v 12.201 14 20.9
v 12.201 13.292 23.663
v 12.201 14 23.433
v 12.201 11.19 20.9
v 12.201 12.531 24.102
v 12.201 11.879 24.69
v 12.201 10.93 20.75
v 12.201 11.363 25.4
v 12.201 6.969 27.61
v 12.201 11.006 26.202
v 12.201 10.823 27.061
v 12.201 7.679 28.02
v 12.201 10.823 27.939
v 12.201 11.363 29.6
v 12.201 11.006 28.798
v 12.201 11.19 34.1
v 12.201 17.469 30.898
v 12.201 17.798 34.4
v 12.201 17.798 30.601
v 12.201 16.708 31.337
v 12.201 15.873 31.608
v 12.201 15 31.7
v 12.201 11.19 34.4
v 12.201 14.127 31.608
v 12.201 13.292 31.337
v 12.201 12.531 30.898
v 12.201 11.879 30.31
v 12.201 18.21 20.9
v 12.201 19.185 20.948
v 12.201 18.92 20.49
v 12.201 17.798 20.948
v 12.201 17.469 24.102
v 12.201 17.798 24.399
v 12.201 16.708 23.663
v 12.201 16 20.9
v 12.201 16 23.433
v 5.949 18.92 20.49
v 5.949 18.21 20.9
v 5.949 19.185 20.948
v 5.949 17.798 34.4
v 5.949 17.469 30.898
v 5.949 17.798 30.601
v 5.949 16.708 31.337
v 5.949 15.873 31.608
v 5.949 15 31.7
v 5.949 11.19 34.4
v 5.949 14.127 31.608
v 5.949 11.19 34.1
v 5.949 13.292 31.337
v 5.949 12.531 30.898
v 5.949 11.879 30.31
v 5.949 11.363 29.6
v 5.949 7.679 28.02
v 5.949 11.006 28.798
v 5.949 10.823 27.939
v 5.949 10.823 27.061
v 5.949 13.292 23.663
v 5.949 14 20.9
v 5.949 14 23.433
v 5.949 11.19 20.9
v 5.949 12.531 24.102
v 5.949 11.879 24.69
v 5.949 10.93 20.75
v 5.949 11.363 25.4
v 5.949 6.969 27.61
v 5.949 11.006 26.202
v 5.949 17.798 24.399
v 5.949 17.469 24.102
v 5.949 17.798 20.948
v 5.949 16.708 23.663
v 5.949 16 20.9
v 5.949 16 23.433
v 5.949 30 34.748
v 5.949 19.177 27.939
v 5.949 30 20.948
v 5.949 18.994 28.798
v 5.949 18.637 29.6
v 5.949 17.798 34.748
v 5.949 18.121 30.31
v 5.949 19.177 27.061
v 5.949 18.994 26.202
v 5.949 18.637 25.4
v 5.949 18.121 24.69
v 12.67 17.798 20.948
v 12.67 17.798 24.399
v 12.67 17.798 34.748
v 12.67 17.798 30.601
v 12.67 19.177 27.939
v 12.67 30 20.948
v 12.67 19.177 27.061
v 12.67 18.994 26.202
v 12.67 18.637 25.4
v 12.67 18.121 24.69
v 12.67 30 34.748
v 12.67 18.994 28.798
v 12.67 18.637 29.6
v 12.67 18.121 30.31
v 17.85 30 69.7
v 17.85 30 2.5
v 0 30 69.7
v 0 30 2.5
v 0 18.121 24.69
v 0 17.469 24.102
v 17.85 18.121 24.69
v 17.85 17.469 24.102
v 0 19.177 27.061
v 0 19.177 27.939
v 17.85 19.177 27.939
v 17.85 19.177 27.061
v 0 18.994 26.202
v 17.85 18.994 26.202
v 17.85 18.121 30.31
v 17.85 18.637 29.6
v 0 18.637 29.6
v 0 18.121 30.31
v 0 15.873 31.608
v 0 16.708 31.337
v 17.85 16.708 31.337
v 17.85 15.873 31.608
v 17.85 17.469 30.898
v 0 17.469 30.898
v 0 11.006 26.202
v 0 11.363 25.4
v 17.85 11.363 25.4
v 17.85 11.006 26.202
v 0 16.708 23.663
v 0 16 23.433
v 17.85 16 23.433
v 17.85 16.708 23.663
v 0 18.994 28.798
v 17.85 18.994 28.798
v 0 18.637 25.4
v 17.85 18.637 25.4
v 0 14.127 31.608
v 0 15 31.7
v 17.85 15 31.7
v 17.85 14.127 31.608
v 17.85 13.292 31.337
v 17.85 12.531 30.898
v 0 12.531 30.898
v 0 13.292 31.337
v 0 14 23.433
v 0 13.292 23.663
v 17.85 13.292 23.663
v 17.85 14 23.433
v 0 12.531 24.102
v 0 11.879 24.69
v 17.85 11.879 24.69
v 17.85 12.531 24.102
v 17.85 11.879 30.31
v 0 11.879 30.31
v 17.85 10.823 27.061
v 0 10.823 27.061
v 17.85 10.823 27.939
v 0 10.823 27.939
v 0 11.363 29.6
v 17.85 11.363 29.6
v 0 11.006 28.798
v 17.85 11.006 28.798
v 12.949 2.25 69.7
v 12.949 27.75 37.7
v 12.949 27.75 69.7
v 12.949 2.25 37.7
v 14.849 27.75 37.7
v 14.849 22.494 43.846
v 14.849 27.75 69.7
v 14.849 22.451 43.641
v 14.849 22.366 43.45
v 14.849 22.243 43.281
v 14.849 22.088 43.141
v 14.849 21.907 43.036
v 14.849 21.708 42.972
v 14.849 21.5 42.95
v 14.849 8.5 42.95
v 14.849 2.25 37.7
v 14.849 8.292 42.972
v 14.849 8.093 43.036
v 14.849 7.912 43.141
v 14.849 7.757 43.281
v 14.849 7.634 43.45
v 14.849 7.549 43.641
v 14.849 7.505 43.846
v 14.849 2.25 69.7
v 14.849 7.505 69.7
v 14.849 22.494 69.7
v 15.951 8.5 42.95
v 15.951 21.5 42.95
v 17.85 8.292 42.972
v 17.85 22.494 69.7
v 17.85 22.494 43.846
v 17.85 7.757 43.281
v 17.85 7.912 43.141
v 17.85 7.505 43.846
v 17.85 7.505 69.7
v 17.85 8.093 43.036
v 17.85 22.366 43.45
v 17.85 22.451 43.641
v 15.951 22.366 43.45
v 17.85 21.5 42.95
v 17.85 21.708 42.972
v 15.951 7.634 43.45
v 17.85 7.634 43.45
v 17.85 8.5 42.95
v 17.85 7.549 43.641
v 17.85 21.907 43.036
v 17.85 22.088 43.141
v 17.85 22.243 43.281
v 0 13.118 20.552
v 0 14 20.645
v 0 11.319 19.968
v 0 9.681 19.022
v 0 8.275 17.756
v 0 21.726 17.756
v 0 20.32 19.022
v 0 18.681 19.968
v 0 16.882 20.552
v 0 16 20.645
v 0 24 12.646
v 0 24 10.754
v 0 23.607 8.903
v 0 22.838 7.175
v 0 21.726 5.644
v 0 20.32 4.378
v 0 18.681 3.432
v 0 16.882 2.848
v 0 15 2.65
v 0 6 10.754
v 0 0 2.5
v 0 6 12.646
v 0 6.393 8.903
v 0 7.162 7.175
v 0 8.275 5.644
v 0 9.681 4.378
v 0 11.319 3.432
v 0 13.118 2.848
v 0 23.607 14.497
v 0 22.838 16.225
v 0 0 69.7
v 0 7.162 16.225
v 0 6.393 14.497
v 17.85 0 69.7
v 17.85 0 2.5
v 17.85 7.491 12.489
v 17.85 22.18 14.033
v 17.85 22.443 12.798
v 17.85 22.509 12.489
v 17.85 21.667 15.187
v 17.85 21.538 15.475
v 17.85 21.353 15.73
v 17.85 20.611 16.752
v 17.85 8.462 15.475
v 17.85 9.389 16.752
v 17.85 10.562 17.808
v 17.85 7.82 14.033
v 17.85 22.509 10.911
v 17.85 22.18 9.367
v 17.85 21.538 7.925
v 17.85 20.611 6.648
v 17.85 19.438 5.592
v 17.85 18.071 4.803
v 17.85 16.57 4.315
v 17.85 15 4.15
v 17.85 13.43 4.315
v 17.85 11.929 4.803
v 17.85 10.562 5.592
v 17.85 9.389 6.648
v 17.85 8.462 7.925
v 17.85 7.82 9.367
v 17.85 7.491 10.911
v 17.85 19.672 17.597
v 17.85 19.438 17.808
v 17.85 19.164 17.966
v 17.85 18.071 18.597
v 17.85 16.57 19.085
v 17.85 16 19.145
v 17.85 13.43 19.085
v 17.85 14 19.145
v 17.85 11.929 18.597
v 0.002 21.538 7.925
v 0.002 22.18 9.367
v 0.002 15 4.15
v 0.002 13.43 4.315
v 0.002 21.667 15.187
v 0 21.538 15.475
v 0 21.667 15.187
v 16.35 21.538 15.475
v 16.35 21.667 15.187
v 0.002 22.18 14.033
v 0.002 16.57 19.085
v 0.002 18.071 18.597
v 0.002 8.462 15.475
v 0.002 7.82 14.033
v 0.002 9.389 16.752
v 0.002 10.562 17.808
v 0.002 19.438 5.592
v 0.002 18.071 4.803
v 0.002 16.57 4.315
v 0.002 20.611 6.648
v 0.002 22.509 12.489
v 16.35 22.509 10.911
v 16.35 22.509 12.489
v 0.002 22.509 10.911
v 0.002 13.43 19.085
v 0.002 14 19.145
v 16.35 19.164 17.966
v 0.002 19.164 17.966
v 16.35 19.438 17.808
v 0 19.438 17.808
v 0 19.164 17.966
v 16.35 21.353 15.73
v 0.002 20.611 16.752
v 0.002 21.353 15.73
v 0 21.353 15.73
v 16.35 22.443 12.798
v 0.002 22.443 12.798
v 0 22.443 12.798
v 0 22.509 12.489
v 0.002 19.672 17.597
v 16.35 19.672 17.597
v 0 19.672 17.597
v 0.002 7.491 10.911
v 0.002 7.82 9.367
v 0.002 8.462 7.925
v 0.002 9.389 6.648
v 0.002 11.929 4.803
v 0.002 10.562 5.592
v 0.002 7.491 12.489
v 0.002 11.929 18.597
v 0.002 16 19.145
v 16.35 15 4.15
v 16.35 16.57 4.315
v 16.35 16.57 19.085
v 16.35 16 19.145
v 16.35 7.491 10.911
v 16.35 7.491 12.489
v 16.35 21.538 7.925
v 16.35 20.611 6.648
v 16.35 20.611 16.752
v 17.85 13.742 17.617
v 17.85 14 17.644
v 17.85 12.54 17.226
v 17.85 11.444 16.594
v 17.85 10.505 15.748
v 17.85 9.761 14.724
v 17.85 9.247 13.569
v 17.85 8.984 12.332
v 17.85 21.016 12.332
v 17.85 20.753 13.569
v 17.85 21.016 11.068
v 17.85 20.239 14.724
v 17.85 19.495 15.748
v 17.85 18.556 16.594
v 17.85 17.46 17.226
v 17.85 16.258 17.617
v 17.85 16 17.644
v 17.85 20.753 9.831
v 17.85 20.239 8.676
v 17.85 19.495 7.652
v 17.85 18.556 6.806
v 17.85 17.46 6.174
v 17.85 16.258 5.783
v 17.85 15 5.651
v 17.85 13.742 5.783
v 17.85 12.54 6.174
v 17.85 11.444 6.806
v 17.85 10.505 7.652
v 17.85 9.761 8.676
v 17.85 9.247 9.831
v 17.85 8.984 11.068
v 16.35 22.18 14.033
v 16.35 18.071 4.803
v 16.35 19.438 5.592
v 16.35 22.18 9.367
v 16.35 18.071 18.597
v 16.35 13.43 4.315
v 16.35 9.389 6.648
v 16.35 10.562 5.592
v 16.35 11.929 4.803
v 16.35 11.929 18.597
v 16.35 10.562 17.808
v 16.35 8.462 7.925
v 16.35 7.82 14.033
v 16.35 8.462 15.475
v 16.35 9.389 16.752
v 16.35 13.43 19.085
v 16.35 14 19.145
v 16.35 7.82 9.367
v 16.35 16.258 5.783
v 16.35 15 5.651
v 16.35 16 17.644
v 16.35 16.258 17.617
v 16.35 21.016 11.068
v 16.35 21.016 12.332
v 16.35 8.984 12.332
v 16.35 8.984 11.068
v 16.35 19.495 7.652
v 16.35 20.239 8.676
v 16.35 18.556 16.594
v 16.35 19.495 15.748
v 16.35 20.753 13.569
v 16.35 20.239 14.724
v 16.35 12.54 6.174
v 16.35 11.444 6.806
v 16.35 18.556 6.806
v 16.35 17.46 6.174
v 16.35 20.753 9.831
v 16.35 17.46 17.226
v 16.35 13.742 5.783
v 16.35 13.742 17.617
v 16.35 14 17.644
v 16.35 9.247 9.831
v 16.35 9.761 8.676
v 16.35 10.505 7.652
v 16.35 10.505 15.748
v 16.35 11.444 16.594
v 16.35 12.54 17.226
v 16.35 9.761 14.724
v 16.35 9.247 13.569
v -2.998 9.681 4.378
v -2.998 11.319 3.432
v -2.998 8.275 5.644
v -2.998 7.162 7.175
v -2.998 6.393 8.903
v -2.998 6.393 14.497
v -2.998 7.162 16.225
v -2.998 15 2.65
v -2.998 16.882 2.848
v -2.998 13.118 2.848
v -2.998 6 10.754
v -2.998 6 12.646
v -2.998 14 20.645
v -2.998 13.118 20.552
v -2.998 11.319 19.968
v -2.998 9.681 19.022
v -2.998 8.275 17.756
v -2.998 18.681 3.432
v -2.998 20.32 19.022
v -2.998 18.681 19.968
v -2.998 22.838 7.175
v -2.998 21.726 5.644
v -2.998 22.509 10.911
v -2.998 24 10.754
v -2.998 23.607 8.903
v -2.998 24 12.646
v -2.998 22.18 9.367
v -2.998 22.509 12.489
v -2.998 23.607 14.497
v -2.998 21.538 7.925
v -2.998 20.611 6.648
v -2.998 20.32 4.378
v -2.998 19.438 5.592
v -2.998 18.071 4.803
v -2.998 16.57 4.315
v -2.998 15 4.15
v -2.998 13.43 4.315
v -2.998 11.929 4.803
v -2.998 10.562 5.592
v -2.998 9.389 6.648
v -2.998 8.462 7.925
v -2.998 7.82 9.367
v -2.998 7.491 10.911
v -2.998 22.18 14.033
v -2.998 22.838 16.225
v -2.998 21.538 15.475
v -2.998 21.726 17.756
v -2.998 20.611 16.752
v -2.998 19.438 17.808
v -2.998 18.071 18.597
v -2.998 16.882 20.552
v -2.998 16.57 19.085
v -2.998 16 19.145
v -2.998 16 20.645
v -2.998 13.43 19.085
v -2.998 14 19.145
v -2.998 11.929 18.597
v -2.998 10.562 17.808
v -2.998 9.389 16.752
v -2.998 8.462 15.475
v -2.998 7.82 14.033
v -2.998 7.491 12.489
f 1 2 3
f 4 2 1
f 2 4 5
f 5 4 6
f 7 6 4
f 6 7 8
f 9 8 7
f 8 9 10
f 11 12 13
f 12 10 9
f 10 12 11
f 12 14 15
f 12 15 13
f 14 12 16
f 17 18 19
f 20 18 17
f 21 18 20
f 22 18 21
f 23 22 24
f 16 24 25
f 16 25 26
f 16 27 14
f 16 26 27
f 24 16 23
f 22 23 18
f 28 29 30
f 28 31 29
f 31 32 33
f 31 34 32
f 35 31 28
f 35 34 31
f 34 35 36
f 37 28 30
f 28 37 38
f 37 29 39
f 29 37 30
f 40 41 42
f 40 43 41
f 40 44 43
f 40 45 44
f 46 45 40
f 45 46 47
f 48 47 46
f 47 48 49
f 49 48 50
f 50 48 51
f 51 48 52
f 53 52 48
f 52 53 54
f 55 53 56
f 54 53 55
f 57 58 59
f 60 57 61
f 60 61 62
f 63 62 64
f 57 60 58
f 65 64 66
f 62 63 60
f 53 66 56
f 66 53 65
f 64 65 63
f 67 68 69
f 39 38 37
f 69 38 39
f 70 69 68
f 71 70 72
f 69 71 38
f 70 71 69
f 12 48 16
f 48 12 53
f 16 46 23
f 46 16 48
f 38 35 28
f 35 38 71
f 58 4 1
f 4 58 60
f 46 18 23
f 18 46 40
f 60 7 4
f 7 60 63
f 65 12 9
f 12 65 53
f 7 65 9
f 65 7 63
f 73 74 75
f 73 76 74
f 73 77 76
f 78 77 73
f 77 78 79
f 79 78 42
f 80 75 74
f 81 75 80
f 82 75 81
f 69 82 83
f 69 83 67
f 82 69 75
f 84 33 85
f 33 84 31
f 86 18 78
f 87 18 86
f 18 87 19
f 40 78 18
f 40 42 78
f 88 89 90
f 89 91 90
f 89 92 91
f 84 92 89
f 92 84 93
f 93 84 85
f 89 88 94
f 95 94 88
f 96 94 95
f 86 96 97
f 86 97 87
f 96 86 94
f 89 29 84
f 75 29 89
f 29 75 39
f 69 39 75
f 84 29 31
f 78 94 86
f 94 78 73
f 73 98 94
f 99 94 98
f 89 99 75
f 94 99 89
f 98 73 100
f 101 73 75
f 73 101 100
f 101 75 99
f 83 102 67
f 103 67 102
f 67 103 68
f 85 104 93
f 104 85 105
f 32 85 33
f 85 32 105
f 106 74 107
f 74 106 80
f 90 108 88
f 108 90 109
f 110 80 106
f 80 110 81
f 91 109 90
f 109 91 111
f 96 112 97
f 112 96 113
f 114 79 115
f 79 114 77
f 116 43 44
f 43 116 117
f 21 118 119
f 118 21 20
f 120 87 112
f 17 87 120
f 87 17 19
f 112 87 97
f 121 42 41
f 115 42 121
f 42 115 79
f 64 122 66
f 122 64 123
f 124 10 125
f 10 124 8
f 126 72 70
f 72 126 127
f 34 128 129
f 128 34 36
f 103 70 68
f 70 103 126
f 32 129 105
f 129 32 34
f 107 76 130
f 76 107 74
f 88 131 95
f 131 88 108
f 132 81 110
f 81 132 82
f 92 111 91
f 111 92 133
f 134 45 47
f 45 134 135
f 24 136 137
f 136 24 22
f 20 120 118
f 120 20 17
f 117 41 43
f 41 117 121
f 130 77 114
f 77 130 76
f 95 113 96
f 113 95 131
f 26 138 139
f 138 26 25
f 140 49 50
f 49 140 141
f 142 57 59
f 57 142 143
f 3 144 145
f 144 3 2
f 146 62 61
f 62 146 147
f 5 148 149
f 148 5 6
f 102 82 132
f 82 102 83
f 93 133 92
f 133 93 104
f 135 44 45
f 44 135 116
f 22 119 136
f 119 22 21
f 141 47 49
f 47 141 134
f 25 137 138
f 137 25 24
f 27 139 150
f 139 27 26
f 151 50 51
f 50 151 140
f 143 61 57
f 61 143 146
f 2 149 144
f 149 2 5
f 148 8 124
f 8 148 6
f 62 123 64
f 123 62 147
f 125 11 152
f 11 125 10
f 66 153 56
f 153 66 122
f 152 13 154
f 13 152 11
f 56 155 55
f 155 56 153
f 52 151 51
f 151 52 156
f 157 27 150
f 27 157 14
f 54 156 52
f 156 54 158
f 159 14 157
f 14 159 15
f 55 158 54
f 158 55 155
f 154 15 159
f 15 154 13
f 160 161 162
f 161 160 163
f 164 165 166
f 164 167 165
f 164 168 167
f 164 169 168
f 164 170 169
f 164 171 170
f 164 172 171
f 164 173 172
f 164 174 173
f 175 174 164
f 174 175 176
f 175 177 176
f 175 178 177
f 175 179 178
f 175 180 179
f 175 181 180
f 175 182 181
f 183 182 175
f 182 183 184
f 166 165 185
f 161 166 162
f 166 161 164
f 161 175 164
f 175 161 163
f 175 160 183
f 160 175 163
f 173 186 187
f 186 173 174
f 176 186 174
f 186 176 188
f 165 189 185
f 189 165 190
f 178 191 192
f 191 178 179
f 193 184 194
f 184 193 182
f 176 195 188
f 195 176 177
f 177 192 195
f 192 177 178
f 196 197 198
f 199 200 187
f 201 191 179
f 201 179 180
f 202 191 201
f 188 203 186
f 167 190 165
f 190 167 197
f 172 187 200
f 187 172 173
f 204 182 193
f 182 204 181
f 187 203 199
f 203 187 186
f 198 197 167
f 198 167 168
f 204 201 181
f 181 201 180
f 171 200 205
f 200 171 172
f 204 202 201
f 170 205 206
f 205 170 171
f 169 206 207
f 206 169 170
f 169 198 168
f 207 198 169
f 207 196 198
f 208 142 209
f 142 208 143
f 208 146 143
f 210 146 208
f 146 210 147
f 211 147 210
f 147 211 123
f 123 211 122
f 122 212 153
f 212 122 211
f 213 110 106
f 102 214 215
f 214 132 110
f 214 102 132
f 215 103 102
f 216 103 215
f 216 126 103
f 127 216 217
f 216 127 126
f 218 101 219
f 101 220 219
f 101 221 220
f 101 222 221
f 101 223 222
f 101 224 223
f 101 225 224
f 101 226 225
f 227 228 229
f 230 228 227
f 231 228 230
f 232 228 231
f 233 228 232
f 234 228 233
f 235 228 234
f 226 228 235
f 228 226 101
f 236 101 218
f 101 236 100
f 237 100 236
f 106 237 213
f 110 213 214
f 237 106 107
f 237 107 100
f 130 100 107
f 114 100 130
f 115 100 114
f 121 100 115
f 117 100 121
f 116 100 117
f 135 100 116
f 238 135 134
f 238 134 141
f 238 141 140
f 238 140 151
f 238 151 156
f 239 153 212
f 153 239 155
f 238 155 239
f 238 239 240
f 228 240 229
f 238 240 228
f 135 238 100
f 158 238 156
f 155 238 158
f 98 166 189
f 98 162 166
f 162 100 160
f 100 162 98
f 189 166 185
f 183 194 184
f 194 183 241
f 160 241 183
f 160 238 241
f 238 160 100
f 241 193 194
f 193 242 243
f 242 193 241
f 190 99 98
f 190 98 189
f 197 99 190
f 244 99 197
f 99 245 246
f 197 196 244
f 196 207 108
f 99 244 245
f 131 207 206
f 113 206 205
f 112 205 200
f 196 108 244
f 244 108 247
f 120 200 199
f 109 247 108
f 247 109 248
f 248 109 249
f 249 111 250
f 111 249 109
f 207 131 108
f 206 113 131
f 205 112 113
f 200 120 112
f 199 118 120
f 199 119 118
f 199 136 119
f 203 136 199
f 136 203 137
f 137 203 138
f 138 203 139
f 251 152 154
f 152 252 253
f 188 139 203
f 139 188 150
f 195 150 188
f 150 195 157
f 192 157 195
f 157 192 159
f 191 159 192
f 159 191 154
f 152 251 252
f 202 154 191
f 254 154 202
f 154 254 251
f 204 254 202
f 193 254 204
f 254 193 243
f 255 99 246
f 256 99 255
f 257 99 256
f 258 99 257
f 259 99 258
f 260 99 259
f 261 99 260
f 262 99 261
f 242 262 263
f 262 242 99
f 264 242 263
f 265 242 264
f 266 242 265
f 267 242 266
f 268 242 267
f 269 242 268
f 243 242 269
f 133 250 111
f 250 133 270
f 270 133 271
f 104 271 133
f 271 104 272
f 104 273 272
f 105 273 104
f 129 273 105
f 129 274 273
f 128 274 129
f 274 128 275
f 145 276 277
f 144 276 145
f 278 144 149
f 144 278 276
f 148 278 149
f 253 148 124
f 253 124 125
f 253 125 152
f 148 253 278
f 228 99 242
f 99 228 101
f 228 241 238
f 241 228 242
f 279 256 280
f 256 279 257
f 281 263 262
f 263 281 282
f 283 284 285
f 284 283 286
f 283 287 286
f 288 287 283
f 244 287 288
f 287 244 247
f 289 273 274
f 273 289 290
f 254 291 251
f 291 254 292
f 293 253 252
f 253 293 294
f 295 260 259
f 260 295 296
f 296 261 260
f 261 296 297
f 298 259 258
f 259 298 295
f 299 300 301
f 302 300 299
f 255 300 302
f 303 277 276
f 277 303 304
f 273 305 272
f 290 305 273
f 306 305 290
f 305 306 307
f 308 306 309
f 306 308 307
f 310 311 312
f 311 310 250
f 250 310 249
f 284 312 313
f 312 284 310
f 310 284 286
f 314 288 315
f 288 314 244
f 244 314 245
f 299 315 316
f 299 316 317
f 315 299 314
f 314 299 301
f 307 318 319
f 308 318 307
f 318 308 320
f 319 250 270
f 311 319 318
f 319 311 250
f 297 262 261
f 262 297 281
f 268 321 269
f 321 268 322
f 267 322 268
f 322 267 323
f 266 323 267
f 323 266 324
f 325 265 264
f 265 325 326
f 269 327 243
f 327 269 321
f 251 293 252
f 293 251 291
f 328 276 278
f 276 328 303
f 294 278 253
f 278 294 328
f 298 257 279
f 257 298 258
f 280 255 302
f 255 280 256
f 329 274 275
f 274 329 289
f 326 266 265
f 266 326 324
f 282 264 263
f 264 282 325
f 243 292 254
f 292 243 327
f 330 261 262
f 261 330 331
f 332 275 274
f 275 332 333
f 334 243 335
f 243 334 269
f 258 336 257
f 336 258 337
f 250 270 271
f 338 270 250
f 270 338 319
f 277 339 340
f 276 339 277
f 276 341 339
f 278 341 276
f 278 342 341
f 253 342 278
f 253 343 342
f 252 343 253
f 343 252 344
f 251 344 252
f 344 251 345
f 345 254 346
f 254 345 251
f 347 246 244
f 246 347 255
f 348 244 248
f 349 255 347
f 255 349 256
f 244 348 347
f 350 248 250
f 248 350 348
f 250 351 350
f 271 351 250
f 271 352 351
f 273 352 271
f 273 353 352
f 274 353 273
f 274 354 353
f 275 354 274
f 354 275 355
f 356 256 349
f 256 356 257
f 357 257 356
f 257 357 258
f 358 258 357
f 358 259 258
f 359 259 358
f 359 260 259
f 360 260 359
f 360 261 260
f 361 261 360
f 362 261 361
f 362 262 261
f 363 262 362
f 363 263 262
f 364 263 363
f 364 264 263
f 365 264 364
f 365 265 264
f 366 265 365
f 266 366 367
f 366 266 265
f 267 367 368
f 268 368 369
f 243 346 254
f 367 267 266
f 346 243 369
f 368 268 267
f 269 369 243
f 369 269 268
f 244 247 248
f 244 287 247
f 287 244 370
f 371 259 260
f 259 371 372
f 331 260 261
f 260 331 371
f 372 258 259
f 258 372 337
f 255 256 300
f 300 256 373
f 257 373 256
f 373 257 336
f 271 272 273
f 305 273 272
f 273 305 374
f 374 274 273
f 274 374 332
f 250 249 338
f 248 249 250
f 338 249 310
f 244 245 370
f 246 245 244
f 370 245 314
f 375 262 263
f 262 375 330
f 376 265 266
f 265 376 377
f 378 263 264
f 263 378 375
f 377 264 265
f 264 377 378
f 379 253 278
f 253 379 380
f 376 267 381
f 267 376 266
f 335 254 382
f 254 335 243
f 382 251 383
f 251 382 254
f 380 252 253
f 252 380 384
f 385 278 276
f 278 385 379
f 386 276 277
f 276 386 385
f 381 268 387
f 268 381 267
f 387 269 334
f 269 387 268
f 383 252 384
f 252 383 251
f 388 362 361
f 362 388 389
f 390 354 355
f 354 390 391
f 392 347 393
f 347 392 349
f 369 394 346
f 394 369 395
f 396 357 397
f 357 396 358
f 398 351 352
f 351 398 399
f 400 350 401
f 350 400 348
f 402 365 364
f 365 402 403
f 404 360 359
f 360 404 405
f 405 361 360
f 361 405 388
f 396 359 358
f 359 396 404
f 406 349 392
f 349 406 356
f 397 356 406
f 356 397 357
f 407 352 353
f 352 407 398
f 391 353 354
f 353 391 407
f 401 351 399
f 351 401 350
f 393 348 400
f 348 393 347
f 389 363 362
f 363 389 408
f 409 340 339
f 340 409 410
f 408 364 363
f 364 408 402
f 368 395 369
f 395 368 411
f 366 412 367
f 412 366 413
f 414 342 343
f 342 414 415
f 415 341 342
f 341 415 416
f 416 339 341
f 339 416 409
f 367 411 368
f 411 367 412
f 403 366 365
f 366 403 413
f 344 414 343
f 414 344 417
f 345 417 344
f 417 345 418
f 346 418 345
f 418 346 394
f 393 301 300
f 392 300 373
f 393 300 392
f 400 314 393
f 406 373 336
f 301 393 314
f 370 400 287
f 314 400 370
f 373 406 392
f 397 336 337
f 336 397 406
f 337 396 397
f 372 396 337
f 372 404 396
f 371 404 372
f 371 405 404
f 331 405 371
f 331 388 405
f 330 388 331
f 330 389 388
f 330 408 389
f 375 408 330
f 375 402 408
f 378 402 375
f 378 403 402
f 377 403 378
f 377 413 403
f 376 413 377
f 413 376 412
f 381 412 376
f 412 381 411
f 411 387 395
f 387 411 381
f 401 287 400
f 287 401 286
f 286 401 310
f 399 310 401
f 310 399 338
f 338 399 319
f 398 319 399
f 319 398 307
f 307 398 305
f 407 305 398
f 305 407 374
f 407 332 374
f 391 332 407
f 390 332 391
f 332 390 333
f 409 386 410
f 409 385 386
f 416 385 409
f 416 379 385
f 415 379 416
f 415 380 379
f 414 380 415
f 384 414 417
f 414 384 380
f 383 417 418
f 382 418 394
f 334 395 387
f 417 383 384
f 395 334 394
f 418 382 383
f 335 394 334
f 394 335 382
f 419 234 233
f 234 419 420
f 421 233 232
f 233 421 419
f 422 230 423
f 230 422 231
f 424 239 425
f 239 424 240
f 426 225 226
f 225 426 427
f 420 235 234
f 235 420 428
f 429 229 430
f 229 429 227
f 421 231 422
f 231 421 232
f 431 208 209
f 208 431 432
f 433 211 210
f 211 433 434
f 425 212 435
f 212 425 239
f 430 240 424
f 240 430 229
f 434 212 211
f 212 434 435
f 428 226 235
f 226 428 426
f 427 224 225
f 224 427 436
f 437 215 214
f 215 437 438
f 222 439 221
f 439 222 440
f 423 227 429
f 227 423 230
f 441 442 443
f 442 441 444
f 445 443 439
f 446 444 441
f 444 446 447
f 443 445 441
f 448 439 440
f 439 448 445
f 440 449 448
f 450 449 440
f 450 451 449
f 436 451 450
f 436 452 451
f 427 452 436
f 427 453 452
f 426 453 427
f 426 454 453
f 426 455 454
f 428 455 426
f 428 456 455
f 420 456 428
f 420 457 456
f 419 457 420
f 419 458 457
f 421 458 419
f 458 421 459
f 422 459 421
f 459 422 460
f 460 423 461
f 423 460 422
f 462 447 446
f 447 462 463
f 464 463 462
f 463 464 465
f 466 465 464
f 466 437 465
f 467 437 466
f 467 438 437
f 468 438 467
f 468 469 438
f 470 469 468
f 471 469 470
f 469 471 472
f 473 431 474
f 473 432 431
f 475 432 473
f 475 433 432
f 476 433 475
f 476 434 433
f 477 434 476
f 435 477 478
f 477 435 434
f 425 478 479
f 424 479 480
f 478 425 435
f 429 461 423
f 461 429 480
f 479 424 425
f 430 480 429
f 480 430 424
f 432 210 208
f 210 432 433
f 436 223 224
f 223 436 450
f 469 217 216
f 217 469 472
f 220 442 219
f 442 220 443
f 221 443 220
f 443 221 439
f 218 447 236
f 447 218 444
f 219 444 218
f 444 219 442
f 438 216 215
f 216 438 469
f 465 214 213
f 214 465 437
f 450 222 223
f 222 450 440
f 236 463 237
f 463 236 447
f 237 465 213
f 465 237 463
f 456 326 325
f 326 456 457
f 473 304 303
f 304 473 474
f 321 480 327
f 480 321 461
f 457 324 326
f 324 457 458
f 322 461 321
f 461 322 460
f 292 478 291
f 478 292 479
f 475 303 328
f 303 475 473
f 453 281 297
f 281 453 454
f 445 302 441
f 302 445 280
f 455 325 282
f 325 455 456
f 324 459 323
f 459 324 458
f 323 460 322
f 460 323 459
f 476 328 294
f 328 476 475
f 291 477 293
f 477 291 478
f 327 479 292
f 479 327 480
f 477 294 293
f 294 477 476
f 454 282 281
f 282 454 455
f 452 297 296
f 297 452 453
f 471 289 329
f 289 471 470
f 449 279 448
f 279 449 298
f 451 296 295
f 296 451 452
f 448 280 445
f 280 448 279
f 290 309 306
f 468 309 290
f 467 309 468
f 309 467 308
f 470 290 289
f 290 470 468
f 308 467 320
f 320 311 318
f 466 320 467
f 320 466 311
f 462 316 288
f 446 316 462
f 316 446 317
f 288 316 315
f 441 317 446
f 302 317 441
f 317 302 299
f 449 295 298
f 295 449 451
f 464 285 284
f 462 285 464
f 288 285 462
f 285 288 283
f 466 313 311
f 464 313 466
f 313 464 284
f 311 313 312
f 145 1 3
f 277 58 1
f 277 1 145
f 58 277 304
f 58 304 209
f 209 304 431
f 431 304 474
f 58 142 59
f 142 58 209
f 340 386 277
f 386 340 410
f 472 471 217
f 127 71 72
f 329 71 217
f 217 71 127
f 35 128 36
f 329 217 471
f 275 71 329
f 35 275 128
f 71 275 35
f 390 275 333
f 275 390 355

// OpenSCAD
// file: syringePumpConstants.scad
/* === Project-universal Constants === */

//Not all of these variables are used in this specific model,
//but the same variable set is used across all models in this project.

$fs = 0.1;

inch = 25.4; //for mm conversion

//width of base

// 8020 profile is 1 inch wide
//baseSizeY = 2*inch;
//screwPlateSize = 25;	
//screwRadius = 3.5;

// OpenBeam is 15mm wide
baseSizeY = 2*15;
screwPlateSize = 15;	
screwRadius = 1.5;

centerY = baseSizeY / 2; //both axes go right down the middle of the base

//stepper motor
stepperZSize = 42;
stepperYSize = 42;

//608 bearing 
bearing608Height = 8.5;
bearing608Diameter = 22.5;

//height of holder for 80/20 screws
mountPlateHeight = 5;

//axis heights
threadedAxisHeight = stepperZSize/2 + mountPlateHeight + 4;
echo("threadedAxisHeight ", threadedAxisHeight);
smoothAxisHeight = (threadedAxisHeight-6.6) / 2;
smoothRodRadius = 4.2;

//syringe properties
//barrelDiameter = 25;
//
//barrelSlotThickness = 3;
//barrelSlotHeight = 28;

// 20ml BD plastic disposable syringe REF 302830
barrelDiameter = 21.4;
barrelSlotThickness = 3;
barrelSlotHeight = 28;

syringeCenterHeight = threadedAxisHeight + bearing608Diameter/2 + 4 + barrelDiameter/2;

//fixes render oddities
floatCorrection = 0.001; 
floatCorrection2 = 2*floatCorrection; 
// main file
include <syringePumpConstants.scad>

/* === Model-specific Constants === */

//add some clearance, we don't want this against the 8020 rails
spaceAboveFloor = 2.5;

// shrinking factor
shrink = 0.3; // this is to be subtracted to all tools beds in order to guarantee a tighter fit

//plunger
plungerDiameter = 27.5;
plungerThickness = 2.2 - shrink;
plungerInnerDiameter = 15;
plungerClipThickness = 3;
plungerWellDepth = plungerThickness + plungerClipThickness;
mink_radius = 1; // this value is used in definind the plunger bed in the cube. It is the amount of which each side of the cube will be increased due to the minkowski sum

//trap nut
nutAcross = 13.2;
nutDepth = 6.2;
nutWellDepth = nutDepth + 0.05 - shrink; //tight so it won't rattle
nutWallThicknessFront = plungerWellDepth+3;
nutWallThicknessBack = 4;

nutSlotSizeX = nutWallThicknessFront;
nutSlotSizeY = nutAcross;
nutSlotSizeZ = nutAcross/2 - 5.5; // 5.5 is a subjective decided amount to compact the design

//linear bearing 
LM8UU_dia = 15.4 - shrink;
LM8UU_length = 24;

//cube containing nut, linear bearing, and plunger
mountXSize = nutWellDepth + nutWallThicknessFront + nutWallThicknessBack;
mountZSize = syringeCenterHeight + plungerDiameter/2 + 3;

//nut
nutEdgeLength = nutAcross / (sqrt(3));
correctionFactor = 0.3;

nutCenterX = (mountXSize - nutWellDepth)/2 -floatCorrection;

finished_base();

/* === Model === */

//U-shaped hole for syringe plunger to go in
module plunger_bed(){
    
	translate([mountXSize-(floatCorrection+plungerWellDepth),centerY + mink_radius -plungerDiameter/2,syringeCenterHeight - plungerDiameter/2 + mink_radius]){
		plungerClip();
        } 	
        translate([mountXSize-(floatCorrection+plungerWellDepth),centerY-(plungerInnerDiameter - 2*mink_radius)/2,syringeCenterHeight - plungerInnerDiameter/2 + mink_radius]){	
        //translate([mountXSize-(floatCorrection+plungerWellDepth),centerY -(plungerInnerDiameter/2),syringeCenterHeight - plungerInnerDiameter/2 + mink_radius]){
		plungerRod();
		}
	}

// syringe plunger clip holder
module plungerClip(){
    
     #minkowski(){
			cube(size=[plungerThickness,plungerDiameter - 2*mink_radius,mountZSize]);
			rotate(a=[0,90,0]){cylinder(h=plungerClipThickness, r = mink_radius-1);
		}		
    }   
}

// opening to hold the syringe plunger
module plungerRod(){
    
     #minkowski(){
			cube(size=[plungerClipThickness+floatCorrection2,plungerInnerDiameter - 2*mink_radius ,mountZSize]);
			rotate(a=[0,90,0]){cylinder(h=plungerThickness, r = mink_radius);
		}		
    }   
}

// internal bed for the nut
module nutWell(){
	//compose the outline of the 6-sided nut using 3 cubes. Yay geometry.

   rotate(a=[0,0,-30]){
	translate([-nutEdgeLength/2, -nutAcross/2, 0]){
		cube(size=[nutEdgeLength + correctionFactor,nutAcross + correctionFactor,nutWellDepth+floatCorrection2  + correctionFactor ]);
	}}

		rotate(a=[0,0,90]){
			translate([-nutEdgeLength/2, -nutAcross/2, 0]){
				cube(size=[nutEdgeLength + correctionFactor,nutAcross + correctionFactor,nutWellDepth+floatCorrection2  + correctionFactor ]);
			}
		}
	
		rotate(a=[0,0,-150]){
			translate([-nutEdgeLength/2, -nutAcross/2, 0]){
				cube(size=[nutEdgeLength + correctionFactor,nutAcross + correctionFactor,nutWellDepth+floatCorrection2  + correctionFactor ]);
			}
		}
}

// side opening to slide the nut in place
module nutSideOpening(){
    rotate([]){
        translate([]){
            cube([nutEdgeLength - 3*correctionFactor,nutAcross + 2*correctionFactor,2*nutWellDepth+floatCorrection2  + correctionFactor]);
        }
    }
}

// union of the nut bed and its side opening + the hole for the threaded rod 
module nutSideHole(){
    union(){
    //nut
	translate([nutCenterX,centerY,threadedAxisHeight]){
		rotate(a=[0,90,0]){
			nutWell();
		}
	}
    
    // side opening to slide the nut in position
    	translate([nutCenterX,2*centerY,threadedAxisHeight- (nutWellDepth+floatCorrection2  + 2*correctionFactor) ]){
		rotate(a=[90,0,0]){
			nutSideOpening();
		}
	}

	//bore hole for threaded rod
	translate([-floatCorrection,centerY,threadedAxisHeight]){
		rotate(a=[0,90,0]){
			cylinder(h=mountXSize+floatCorrection2, r=smoothRodRadius);
		}
    }
    
}
}

// ring placed internally in the LM8UU bearing bed to stop it from moving 
module LM8UUstopperRing(){
    
    ringThick = 1.5; // both thickness and difference of the radiuses
    
    difference(){
        cylinder(h=LM8UU_length - floatCorrection, r=LM8UU_dia/2);
        cylinder(h=LM8UU_length , r=(LM8UU_dia/2) - ringThick - floatCorrection);
        cylinder(h=LM8UU_length - ringThick -floatCorrection , r=(LM8UU_dia/2));
        
    }
}

// ring extruding from the LM8UU hole to hold the bearing into position. 
module LM8UUextRing(){
    
    ringThick = 3; //
    
    adj = (LM8UU_length - mountXSize - ringThick); // we want to have the bearing extruding a bit from the ring so that it's easy to remove it from it's bed
    
    difference(){
        cylinder(h=LM8UU_length-adj- floatCorrection, r=(LM8UU_dia/2) + ringThick/2);
        cylinder(h=LM8UU_length - floatCorrection, r=(LM8UU_dia/2));
        cylinder(h=LM8UU_length-adj- ringThick -floatCorrection , r=(LM8UU_dia/2) + ringThick/2);
           
            }
}

// combination of the two rings for the bearings
module bearingLM8UU(){
	difference(){
        union(){
            LM8UUstopperRing();
            translate([0,0,+LM8UU_length]){
            rotate(a=[180,0,0]){LM8UUextRing();}
            }
        }
    }
}

// this custom block is the cut in the main block between the LM8UU bearing and the threaded rod hole and it helps release the stress on the structure when the LM8UU bolt is inserted
module stressRelease(){
    cube(size=[2,7.7,mountXSize + 7]);
}

//main cube, holds the two axes
module main_cube(){
// align the rings with the mount
adj = (LM8UU_length - mountXSize);
    
difference(){
	translate([0,0,spaceAboveFloor]){
		cube(size=[mountXSize,baseSizeY,mountZSize - 5.5]);
	}
    
    // union of the nut bed and its side opening + the hole for the threaded rod 
    translate([0,0, -2.5]){nutSideHole(); }

    // hole for LM8UU
    translate([-adj + floatCorrection,centerY,         smoothAxisHeight ]){
        rotate(a=[0,90,0]){cylinder(h=LM8UU_length - floatCorrection, r=LM8UU_dia/2);}}
    	
	//U-shaped hole for syringe plunger to go in
    translate([0,0, -5.5])plunger_bed();
}
}


// union of the base and the rings to stop and guide the LM8UU in its bed
module main_cube_rings(){

    // align the rings for LM8UU with the mount
    adj = (LM8UU_length - mountXSize);

    union(){
        
        main_cube();

        // hole plus rings for LM8UU
        translate([-adj + floatCorrection,centerY,         smoothAxisHeight]){
            rotate(a=[0,90,0]){
                bearingLM8UU();
            }
        }
    }
}



module finished_base(){
    
    // add the rectangular hole in between the LM8UU and the threaded rod bed
        difference(){
           main_cube_rings();
           
           translate([nutCenterX - 12,centerY-1.0,threadedAxisHeight - 14]){
        rotate(a=[90,0,90]){
            stressRelease();
        }
    }
}
}
